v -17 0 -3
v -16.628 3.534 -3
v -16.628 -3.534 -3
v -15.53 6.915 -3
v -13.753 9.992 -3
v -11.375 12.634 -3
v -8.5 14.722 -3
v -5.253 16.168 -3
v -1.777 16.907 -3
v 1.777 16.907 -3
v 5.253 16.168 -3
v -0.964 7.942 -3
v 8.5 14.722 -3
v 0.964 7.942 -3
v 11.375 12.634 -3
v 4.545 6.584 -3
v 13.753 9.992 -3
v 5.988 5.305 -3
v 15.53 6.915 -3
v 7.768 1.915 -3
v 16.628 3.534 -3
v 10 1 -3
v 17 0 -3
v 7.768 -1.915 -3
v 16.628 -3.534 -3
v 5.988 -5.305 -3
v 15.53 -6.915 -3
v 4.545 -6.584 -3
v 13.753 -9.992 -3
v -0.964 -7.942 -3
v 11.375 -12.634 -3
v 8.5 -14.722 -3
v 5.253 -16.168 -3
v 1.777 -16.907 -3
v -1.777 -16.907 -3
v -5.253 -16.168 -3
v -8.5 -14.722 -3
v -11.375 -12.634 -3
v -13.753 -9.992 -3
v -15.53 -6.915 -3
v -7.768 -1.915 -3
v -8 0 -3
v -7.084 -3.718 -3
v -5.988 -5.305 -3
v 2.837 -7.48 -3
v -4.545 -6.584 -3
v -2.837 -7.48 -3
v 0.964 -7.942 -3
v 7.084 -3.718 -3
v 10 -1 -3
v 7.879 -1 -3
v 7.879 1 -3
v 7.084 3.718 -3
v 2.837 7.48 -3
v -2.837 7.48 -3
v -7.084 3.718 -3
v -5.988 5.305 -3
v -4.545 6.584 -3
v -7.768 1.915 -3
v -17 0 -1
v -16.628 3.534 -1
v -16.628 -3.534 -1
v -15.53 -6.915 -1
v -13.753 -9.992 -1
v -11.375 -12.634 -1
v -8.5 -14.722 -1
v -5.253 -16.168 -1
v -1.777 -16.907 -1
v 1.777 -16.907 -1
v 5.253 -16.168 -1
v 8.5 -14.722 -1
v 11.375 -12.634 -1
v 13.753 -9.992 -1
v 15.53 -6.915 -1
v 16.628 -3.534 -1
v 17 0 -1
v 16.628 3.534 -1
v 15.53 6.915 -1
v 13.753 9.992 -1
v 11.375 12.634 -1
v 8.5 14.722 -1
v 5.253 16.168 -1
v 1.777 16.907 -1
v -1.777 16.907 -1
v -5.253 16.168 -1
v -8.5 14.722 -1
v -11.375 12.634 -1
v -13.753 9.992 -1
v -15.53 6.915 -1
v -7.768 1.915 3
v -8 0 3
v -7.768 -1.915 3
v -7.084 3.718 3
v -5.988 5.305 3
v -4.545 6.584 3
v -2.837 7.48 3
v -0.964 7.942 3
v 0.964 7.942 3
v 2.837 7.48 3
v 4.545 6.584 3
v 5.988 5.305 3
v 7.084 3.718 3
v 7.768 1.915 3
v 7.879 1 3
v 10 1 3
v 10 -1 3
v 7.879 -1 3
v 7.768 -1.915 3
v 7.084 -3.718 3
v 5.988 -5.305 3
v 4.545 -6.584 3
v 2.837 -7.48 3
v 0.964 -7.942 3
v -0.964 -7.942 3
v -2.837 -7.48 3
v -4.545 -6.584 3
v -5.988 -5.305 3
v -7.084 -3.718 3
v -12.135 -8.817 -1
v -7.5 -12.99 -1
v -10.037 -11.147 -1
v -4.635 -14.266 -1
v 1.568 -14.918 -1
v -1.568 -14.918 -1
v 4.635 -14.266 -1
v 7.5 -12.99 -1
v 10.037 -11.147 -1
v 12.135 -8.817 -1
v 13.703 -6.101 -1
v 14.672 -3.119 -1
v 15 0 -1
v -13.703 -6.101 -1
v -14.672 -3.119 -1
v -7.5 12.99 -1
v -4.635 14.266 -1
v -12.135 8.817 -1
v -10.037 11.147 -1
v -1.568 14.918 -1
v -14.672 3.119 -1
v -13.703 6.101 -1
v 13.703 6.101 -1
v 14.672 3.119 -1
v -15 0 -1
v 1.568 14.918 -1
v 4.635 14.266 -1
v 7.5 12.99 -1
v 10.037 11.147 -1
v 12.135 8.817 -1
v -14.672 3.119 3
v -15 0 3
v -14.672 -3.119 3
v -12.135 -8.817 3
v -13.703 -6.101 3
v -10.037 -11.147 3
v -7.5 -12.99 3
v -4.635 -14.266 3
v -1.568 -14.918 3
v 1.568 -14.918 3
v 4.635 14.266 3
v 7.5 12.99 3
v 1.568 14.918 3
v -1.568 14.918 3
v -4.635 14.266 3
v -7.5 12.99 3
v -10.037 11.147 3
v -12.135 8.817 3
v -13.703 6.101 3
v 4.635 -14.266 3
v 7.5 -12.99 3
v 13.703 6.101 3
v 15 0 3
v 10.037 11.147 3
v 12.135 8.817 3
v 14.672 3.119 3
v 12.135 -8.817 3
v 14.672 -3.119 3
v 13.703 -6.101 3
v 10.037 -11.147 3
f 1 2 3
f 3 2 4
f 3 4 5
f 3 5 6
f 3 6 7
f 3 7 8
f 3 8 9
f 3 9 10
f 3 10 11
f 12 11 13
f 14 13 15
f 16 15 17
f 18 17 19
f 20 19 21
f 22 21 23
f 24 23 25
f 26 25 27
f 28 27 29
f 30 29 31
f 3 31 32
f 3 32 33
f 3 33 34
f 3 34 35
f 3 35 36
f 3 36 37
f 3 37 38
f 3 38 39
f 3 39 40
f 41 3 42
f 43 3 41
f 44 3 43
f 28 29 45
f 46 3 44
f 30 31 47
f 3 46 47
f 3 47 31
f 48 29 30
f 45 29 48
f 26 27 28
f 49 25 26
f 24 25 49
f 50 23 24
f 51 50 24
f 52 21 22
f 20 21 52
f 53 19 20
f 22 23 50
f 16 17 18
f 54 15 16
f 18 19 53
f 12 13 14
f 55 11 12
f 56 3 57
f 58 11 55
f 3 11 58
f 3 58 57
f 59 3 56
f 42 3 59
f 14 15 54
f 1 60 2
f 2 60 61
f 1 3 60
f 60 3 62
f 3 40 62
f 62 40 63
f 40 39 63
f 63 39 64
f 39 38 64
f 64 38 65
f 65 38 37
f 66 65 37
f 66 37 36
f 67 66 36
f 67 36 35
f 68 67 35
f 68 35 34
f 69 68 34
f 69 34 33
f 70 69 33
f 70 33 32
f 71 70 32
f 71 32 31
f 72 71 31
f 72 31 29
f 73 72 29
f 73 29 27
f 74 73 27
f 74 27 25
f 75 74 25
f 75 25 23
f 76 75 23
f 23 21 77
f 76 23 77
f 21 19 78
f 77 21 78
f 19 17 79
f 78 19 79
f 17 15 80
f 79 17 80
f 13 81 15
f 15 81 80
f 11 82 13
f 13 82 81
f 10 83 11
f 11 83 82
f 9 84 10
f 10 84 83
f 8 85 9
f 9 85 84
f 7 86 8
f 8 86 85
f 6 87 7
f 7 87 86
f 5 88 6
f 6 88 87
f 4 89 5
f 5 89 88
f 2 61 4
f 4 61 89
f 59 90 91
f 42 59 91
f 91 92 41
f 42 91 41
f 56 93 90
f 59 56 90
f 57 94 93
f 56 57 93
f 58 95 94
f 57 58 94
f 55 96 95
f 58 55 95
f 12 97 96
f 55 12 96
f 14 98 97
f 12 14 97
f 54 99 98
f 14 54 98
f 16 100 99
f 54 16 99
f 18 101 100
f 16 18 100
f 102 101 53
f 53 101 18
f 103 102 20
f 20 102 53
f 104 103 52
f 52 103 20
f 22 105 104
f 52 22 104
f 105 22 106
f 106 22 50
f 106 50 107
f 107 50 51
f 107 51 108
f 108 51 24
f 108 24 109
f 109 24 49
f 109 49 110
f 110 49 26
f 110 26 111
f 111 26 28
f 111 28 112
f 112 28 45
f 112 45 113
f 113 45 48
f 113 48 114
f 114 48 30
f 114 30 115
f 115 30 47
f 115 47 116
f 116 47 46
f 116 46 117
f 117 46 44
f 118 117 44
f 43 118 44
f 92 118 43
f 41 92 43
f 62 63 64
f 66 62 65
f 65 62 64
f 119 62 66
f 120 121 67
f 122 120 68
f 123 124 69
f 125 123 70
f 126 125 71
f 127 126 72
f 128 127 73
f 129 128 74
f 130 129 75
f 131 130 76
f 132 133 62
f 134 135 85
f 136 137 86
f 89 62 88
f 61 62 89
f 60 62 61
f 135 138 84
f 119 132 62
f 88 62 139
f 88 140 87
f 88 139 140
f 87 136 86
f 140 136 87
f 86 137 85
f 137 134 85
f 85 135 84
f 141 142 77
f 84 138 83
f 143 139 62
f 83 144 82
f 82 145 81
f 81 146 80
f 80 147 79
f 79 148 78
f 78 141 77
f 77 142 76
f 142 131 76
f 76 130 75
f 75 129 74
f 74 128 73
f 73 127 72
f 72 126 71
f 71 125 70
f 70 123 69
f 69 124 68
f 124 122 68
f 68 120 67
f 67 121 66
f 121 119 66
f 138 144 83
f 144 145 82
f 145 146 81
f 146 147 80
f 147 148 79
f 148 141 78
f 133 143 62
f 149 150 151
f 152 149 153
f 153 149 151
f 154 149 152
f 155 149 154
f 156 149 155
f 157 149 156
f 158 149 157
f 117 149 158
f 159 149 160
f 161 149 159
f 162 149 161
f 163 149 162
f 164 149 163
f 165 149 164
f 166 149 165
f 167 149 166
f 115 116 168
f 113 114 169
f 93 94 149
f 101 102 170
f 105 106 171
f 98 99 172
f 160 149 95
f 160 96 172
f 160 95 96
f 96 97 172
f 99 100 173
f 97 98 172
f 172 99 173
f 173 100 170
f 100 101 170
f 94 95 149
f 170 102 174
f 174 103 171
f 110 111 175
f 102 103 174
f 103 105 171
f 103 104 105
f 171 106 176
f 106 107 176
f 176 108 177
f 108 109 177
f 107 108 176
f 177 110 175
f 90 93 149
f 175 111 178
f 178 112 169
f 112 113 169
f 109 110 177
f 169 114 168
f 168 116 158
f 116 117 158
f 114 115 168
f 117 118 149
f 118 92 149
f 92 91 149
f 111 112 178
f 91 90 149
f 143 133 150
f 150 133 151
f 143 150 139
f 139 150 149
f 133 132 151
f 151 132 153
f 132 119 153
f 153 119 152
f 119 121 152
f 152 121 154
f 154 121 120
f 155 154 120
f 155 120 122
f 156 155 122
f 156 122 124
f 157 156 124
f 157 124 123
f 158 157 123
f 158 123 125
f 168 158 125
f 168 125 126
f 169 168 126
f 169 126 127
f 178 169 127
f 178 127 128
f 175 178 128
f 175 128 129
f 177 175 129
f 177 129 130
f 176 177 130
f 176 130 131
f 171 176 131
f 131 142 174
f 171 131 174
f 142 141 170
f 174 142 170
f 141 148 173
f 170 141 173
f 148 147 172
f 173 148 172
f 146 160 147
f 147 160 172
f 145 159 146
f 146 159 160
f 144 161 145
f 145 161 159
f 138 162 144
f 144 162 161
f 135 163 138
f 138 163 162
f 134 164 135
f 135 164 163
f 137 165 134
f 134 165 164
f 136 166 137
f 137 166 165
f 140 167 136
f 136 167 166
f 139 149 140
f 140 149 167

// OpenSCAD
// radius of mount
r_mount = 8;

// radius of spool
r_spool = 15;

// thickness of adapter
t_adapter = 4;

// how much lip to contain spool on adapter
dr_lip = 2;

// x-y of notch
w_notch = 2;

difference() {
  // hub
  cylinder(h = t_adapter+dr_lip, r = r_spool+dr_lip, center = true);
  // spool cyl
  translate([0, 0, dr_lip]) {
    difference() {
      cylinder(h = t_adapter+dr_lip, r = r_spool+dr_lip+1, center = true);
      cylinder(h = 2*t_adapter, r = r_spool, center = true);
    }
  }
  // mount cyl
  cylinder(h = 2*t_adapter+dr_lip, r = r_mount, center = true);
  // notch
  translate([r_mount, 0, 0]) {
    cube([w_notch*2, w_notch, 2*t_adapter+dr_lip], center = true);
  }
}
